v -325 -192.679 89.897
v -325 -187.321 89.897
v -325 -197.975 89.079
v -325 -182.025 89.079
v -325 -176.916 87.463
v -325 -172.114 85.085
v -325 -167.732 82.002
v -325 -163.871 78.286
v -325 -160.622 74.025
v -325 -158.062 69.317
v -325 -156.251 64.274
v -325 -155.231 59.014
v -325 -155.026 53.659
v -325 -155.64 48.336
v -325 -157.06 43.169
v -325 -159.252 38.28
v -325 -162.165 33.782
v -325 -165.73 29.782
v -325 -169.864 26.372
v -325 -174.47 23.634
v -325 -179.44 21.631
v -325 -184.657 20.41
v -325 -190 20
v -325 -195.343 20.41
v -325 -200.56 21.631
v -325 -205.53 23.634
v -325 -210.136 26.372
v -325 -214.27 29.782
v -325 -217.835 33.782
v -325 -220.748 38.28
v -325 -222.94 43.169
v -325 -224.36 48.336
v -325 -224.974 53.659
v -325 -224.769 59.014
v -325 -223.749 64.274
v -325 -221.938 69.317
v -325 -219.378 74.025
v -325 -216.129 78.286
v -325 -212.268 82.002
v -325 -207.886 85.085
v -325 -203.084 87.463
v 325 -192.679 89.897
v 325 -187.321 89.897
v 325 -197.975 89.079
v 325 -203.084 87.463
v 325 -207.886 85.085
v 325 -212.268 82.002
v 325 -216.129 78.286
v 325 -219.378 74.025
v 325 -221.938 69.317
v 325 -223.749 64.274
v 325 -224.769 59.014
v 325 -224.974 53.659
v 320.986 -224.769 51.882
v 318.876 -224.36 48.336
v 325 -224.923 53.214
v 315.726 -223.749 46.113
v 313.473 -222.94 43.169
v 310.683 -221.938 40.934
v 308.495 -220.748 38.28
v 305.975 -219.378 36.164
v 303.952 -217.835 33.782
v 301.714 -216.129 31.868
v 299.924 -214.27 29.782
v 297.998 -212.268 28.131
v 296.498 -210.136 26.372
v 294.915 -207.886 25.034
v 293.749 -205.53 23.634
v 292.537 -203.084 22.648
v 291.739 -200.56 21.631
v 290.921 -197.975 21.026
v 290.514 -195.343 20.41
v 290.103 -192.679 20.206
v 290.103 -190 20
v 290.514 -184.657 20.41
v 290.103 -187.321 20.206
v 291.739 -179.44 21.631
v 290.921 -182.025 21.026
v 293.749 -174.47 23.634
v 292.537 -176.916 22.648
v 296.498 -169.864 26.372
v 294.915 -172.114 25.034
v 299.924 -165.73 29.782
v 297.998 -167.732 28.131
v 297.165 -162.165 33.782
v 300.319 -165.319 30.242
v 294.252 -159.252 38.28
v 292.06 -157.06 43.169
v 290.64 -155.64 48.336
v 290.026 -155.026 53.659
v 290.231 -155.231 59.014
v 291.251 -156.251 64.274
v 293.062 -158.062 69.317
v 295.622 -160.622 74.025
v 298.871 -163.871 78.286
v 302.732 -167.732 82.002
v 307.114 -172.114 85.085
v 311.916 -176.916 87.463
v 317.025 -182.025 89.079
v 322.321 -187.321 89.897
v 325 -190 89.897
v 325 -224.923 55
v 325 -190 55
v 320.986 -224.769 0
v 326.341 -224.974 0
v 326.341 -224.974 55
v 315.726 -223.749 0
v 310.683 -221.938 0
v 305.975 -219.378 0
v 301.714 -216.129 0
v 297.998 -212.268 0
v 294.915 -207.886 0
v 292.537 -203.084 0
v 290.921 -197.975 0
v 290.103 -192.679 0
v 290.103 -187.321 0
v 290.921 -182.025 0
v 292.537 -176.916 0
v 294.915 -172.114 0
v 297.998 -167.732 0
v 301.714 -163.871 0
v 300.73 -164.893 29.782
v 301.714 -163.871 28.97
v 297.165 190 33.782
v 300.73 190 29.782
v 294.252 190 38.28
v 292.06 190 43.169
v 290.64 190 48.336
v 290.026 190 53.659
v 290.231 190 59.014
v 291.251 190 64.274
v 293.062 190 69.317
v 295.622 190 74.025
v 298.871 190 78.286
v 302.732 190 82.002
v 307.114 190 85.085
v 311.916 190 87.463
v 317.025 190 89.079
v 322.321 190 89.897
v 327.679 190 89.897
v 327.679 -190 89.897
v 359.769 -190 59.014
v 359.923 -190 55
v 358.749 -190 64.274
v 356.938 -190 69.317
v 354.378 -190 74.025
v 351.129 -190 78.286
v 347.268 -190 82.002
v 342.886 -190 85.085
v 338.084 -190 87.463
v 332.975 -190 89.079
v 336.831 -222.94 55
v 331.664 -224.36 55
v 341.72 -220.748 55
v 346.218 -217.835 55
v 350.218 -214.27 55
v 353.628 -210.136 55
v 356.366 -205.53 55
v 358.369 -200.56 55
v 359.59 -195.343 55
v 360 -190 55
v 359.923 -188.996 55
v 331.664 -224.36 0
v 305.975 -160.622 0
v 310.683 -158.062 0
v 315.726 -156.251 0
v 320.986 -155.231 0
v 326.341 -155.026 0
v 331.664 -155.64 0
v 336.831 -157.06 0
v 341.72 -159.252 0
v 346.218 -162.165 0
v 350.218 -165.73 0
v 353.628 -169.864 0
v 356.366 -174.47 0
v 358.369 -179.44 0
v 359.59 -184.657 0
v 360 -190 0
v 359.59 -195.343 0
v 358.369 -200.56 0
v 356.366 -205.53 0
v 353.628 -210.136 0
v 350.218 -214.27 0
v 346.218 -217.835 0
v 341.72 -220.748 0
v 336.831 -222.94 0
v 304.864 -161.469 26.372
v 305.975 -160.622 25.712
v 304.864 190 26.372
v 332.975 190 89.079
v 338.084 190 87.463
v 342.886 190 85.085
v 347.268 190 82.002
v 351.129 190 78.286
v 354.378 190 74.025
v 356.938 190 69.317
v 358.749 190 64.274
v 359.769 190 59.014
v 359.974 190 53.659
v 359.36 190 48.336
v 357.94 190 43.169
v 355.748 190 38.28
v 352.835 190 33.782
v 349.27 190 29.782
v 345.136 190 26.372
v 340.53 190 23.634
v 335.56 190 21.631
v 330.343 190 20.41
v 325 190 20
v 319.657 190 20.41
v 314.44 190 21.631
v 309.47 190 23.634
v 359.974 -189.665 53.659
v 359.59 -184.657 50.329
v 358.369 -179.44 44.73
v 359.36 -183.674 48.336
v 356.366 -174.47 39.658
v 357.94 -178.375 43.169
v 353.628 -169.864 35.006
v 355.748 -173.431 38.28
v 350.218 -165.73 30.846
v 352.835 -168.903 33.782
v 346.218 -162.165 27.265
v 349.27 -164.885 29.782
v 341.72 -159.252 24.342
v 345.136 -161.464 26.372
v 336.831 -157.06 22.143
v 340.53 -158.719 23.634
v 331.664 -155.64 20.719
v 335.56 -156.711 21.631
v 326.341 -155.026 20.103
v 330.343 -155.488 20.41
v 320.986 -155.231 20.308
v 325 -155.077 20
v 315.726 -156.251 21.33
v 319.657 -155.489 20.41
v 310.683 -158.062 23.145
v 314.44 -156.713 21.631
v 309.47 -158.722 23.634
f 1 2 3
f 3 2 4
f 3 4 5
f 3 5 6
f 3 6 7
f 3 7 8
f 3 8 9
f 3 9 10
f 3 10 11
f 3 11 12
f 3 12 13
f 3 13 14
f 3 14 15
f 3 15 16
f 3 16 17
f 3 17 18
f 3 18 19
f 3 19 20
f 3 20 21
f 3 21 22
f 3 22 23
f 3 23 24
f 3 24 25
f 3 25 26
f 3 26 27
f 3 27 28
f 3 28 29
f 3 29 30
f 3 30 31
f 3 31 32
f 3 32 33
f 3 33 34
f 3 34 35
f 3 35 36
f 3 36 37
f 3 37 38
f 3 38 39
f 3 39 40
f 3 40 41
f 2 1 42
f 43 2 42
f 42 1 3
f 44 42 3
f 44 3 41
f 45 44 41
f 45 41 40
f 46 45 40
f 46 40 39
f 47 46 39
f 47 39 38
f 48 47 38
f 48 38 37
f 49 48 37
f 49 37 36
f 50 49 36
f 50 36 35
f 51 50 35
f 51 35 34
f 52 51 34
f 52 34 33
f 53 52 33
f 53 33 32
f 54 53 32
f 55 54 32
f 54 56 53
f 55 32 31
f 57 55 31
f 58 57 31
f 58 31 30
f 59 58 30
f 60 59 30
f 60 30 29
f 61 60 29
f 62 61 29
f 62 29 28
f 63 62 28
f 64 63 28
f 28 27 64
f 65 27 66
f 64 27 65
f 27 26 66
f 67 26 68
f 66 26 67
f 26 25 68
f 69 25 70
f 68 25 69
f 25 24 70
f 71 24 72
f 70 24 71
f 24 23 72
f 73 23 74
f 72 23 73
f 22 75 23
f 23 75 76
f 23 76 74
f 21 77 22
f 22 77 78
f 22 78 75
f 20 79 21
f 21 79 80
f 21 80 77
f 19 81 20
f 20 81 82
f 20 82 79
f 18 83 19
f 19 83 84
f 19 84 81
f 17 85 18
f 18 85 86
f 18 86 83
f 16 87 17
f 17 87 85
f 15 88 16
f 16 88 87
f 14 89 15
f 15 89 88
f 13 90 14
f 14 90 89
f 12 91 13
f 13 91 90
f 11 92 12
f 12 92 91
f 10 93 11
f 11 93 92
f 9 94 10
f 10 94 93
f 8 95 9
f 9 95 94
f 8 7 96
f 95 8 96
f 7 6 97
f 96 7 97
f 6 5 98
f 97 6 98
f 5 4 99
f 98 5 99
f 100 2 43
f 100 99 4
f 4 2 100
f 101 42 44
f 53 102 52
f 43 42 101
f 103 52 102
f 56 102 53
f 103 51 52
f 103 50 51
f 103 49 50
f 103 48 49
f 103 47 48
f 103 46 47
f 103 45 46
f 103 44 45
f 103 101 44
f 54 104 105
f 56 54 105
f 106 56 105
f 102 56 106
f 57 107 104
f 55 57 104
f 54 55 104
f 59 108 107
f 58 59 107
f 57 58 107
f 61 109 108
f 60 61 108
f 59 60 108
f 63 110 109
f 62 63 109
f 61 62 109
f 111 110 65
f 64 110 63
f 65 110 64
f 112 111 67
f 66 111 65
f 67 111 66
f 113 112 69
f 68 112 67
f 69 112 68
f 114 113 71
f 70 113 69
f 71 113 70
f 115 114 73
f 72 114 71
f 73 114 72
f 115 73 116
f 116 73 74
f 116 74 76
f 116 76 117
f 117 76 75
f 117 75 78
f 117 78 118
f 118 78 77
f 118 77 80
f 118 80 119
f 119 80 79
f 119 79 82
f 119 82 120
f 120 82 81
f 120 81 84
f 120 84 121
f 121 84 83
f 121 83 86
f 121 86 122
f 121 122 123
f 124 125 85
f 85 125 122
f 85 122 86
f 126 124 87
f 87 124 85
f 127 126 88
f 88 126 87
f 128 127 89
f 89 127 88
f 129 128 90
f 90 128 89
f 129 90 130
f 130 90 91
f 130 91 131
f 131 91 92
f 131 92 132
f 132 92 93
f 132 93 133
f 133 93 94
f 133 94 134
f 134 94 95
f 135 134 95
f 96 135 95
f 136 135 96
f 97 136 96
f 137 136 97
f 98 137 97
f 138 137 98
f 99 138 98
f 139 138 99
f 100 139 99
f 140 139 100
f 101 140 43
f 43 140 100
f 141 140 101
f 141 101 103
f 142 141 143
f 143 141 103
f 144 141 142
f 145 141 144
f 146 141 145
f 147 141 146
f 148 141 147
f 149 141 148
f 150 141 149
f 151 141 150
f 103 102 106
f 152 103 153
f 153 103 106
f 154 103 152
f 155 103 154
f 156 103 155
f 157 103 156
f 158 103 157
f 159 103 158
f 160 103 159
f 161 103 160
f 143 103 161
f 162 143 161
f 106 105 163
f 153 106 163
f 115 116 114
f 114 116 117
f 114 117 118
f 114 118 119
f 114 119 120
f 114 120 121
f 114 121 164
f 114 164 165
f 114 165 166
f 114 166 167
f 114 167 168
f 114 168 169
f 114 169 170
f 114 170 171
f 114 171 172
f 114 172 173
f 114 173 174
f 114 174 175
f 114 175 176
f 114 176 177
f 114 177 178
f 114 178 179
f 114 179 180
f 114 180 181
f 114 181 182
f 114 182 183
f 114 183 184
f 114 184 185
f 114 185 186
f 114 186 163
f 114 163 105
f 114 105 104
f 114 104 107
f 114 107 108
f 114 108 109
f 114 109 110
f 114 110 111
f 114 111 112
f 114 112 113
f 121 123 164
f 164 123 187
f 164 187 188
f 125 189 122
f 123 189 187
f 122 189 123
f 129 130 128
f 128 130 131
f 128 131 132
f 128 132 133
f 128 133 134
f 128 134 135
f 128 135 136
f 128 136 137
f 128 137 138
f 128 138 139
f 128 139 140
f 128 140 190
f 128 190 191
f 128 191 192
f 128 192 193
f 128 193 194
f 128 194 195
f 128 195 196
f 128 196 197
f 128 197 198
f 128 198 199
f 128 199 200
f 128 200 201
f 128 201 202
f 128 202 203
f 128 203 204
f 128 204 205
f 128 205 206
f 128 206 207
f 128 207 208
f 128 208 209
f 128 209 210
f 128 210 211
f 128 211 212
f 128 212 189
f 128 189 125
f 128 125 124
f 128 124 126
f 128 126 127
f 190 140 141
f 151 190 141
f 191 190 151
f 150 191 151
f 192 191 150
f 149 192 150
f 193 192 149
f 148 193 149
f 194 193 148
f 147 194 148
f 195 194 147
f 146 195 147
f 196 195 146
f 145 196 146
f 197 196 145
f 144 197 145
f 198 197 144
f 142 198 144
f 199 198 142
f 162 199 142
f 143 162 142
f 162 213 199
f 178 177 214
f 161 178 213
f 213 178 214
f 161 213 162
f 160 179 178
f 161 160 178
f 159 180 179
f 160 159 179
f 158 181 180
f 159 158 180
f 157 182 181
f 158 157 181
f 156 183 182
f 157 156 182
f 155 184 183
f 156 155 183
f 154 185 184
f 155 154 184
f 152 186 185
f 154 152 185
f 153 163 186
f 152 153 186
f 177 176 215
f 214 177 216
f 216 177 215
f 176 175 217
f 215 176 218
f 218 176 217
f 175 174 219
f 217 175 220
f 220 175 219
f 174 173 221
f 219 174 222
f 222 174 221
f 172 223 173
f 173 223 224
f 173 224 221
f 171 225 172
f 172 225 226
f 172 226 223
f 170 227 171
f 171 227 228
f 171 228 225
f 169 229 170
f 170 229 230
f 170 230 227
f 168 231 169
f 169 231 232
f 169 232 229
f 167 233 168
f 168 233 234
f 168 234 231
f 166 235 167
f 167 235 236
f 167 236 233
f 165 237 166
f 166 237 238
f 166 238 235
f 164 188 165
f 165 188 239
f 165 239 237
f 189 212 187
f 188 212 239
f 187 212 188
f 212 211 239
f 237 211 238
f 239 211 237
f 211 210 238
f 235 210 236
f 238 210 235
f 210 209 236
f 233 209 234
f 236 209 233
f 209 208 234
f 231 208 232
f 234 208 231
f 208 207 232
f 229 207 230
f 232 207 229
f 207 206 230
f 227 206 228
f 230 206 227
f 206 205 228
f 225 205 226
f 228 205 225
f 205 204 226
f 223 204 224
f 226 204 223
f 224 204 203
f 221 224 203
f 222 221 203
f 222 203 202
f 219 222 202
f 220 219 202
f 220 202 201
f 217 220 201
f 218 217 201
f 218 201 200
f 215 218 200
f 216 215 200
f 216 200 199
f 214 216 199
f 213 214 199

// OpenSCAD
fn_setting = 41; // does not work
//fn_setting = 40; // works

// basic box sizes
box_width = 720;
box_depth = 450;
box_height = 90;
box_bevel = 35;

union ()
{
	translate ([(box_width / 2) - box_bevel, -((box_depth / 2) - box_bevel), 0])
	cylinder (h = box_height- box_bevel, r = box_bevel, center = false, $fn = fn_setting);

	translate ([0, -((box_depth / 2) - box_bevel), box_height- box_bevel])
	rotate ([0, 90, 0])
	cylinder (h = box_width - (2 * box_bevel), r = box_bevel, center = true, $fn = fn_setting);

	translate ([(box_width / 2) - box_bevel, 0, box_height- box_bevel])
	rotate ([90, 90, 0])
	cylinder (h = box_depth - (2 * box_bevel), r = box_bevel, center = true, $fn = fn_setting);
}
